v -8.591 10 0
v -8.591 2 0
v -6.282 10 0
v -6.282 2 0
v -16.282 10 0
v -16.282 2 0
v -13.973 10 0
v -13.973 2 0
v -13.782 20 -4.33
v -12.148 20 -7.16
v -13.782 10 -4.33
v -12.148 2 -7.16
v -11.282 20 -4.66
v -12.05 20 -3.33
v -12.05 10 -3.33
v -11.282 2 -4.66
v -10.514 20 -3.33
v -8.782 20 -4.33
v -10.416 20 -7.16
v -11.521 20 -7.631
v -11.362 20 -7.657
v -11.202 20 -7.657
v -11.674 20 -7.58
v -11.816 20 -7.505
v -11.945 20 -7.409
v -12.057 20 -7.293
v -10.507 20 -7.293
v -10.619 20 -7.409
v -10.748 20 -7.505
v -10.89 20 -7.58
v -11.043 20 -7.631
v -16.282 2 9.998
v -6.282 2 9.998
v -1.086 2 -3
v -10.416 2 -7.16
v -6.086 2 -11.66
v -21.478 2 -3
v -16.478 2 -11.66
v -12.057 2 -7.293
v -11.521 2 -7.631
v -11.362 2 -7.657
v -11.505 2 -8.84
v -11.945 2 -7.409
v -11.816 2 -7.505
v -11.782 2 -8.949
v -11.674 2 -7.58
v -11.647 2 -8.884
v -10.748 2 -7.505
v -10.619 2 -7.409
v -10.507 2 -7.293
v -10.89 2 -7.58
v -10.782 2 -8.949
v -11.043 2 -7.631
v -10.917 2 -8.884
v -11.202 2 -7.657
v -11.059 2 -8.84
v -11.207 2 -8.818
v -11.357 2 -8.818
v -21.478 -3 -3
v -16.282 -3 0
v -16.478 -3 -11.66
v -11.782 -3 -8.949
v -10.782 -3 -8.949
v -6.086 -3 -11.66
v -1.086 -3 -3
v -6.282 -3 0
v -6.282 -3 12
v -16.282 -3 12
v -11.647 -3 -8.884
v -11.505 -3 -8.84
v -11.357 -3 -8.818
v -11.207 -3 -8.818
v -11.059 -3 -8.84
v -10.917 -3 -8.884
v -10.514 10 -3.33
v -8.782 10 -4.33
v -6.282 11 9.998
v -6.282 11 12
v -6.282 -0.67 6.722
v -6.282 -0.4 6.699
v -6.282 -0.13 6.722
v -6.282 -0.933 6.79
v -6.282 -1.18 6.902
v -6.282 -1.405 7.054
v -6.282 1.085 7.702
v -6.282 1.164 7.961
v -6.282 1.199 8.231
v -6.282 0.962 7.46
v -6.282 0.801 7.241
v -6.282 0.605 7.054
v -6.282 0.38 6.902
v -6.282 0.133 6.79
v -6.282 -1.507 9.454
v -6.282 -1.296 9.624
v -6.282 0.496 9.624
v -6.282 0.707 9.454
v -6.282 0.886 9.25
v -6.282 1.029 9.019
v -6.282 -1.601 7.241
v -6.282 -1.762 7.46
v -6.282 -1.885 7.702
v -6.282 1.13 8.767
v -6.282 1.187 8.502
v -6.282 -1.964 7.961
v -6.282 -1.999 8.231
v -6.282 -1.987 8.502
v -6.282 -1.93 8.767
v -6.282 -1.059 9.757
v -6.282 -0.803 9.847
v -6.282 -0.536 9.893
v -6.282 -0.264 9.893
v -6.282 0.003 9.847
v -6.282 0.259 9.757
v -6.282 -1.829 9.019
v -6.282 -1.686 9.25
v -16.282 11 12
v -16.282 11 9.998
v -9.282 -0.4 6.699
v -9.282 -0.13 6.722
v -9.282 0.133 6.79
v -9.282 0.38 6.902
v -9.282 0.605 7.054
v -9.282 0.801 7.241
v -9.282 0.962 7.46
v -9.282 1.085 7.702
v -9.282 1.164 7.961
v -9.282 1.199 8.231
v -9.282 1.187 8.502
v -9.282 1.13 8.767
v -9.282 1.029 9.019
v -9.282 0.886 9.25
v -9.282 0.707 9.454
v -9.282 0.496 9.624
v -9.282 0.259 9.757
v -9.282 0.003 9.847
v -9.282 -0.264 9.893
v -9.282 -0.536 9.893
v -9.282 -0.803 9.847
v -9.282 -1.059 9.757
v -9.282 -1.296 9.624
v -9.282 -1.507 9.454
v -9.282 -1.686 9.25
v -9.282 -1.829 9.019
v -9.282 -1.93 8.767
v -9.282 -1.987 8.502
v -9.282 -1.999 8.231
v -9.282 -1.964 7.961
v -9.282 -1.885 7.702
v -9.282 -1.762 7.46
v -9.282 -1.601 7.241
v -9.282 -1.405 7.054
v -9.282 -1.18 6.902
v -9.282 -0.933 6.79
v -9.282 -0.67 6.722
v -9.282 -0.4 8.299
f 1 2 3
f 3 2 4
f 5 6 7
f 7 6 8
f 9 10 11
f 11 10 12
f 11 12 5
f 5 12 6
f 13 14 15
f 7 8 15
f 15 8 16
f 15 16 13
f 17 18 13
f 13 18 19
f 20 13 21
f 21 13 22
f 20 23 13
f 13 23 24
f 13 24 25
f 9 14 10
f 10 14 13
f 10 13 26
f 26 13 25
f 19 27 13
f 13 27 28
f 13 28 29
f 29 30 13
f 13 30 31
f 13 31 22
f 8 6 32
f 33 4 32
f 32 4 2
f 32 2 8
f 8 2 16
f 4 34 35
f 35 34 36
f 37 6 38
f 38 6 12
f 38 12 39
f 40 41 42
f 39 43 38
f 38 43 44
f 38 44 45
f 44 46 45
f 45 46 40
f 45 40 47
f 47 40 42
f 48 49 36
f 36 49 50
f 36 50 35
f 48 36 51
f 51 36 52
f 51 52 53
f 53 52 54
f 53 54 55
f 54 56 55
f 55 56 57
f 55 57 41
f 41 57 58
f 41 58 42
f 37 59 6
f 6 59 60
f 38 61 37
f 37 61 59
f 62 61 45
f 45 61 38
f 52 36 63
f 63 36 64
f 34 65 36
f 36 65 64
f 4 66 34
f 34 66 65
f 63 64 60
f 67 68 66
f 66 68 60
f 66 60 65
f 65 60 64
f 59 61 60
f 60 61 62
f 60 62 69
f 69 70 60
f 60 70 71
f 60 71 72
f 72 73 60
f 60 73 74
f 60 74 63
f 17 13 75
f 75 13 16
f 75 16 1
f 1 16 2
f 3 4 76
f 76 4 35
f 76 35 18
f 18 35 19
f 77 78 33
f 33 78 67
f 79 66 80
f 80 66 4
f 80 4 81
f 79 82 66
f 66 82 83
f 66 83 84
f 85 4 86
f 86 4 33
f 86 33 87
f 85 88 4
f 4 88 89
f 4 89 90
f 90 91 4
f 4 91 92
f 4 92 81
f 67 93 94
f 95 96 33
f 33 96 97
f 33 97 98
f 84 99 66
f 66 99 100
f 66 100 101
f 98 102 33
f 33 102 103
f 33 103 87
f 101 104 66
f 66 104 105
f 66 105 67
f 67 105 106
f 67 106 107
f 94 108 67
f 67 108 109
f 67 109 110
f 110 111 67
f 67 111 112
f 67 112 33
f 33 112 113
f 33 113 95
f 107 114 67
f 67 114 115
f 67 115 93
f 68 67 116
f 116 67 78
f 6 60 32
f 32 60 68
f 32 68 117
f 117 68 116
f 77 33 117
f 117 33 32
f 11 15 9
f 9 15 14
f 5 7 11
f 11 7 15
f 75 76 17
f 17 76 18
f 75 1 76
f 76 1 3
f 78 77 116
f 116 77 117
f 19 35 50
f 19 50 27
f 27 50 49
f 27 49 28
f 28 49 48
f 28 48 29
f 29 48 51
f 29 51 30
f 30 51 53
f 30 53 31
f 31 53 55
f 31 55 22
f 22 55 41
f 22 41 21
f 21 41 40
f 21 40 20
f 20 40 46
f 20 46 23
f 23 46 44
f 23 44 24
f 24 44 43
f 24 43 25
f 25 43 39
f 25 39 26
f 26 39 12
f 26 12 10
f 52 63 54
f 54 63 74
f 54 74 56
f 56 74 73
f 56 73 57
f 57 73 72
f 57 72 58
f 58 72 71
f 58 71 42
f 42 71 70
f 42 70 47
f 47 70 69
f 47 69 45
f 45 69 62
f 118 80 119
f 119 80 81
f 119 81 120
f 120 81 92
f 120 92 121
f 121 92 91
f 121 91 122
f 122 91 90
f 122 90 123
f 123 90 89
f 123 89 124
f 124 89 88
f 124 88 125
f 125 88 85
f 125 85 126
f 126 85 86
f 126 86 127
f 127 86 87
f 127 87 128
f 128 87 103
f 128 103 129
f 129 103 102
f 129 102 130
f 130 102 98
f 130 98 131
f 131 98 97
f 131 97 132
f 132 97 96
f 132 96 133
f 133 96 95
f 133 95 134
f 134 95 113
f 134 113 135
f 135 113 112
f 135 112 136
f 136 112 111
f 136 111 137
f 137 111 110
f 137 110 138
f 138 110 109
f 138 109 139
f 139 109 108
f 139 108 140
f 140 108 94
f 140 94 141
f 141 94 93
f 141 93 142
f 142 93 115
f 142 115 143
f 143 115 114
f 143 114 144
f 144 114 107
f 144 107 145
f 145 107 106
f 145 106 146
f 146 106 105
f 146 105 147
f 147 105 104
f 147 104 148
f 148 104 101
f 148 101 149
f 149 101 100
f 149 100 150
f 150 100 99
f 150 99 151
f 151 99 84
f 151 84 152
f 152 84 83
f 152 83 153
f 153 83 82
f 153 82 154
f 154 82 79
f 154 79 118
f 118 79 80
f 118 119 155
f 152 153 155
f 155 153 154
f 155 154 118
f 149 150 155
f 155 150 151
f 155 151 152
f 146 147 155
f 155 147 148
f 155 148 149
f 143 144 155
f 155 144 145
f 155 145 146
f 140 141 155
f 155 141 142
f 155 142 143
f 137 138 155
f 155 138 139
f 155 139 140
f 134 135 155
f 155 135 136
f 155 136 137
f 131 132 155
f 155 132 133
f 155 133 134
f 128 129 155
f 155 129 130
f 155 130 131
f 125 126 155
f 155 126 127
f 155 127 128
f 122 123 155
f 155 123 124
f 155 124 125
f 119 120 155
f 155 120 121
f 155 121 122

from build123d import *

# Parameters (mm, degrees)
BOSS_EXTRUDE1_DEPTH      = 2
BOSS_EXTRUDE1_DEPTH_BACK = 3
BOSS_EXTRUDE2_DEPTH      = 18
BOSS_EXTRUDE3_DEPTH      = 2
BOSS_EXTRUDE3_DEPTH_BACK = 3
SKETCH8_W                = 10
SKETCH8_H                = 12
SKETCH9_W                = 10
SKETCH9_H                = 2.002012711
BOSS_EXTRUDE4_DEPTH      = 18
CUT_EXTRUDE1_DEPTH       = 10
SKETCH12_W               = 10
SKETCH12_H               = 9
CUT_EXTRUDE3_DEPTH       = 3
FILLET3_R                = 1
FILLET4_R                = 1
SKETCH14_R               = 1.6
CUT_EXTRUDE4_DEPTH       = 3


with BuildPart() as part:
    # Sketch3 → Boss-Extrude1 (new, two sides: drawn at the far end of the back side and taken through both)
    with BuildSketch(Plane(origin=(0, 0, 0), x_dir=(1, 0, 0), z_dir=(0, 1, 0)).offset(-BOSS_EXTRUDE1_DEPTH_BACK)):
        Polygon((-16.281996431, 0), (-6.281996431, 0), (-1.085844009, 3), (-6.085844009, 11.660254038), (-11.281996431, 8.660254038), (-16.478148854, 11.660254038), (-21.478148854, 3), align=None)
    extrude(amount=BOSS_EXTRUDE1_DEPTH + BOSS_EXTRUDE1_DEPTH_BACK)

    # Sketch7 → Boss-Extrude2 (add)
    with BuildSketch(Plane(origin=(0, 2, 0), x_dir=(1, 0, 0), z_dir=(0, 1, 0))):
        Polygon((-6.281996431, 0), (-11.281996431, 8.660254038), (-16.281996431, 0), (-13.972595355, 0), (-12.817894816, 2), (-11.281996431, 4.660254038), (-9.746098047, 2), (-8.591397508, 0), align=None)
    extrude(amount=BOSS_EXTRUDE2_DEPTH)

    # Sketch8 → Boss-Extrude3 (add, two sides: drawn at the far end of the back side and taken through both)
    with BuildSketch(Plane(origin=(0, 0, 0), x_dir=(1, 0, 0), z_dir=(0, 1, 0)).offset(-BOSS_EXTRUDE3_DEPTH_BACK)):
        with Locations((-11.281996431, -6)):
            Rectangle(SKETCH8_W, SKETCH8_H)
    extrude(amount=BOSS_EXTRUDE3_DEPTH + BOSS_EXTRUDE3_DEPTH_BACK)

    # Sketch9 → Boss-Extrude4 (add)
    with BuildSketch(Plane(origin=(0, 2, 0), x_dir=(1, 0, 0), z_dir=(0, 1, 0))):
        with Locations((-11.281996431, -10.998993645)):
            Rectangle(SKETCH9_W, SKETCH9_H)
    extrude(amount=BOSS_EXTRUDE4_DEPTH)

    # Sketch10 → Cut-Extrude1 (cut)
    with BuildSketch(Plane(origin=(0, 20, 0), x_dir=(1, 0, 0), z_dir=(0, 1, 0))):
        Polygon((-13.781996431, 4.330127019), (-16.281996431, 0), (-13.972595355, 0), (-12.049945624, 3.330127019), align=None)
        Polygon((-6.281996431, 0), (-8.781996431, 4.330127019), (-10.514047239, 3.330127019), (-8.591397508, 0), align=None)
    extrude(amount=-CUT_EXTRUDE1_DEPTH, mode=Mode.SUBTRACT)

    # Sketch12 → Cut-Extrude3 (cut)
    with BuildSketch(Plane.XY.offset(12)):
        with Locations((-11.281996431, 15.5)):
            Rectangle(SKETCH12_W, SKETCH12_H)
    extrude(amount=-CUT_EXTRUDE3_DEPTH, mode=Mode.SUBTRACT)

    # Fillet3
    # the kernel refuses this fillet: 1 mm, written as the material it takes off along each edge
    with BuildSketch(Plane(origin=(-11.281996431, 2, -8.660254038), x_dir=(-0.5000000000000031, 0, 0.8660254037844368), z_dir=(0, 1, 0))) as fillet3_piece_1:
        with BuildLine():
            CenterArc((FILLET3_R * 1.73205080757, FILLET3_R), FILLET3_R, 150, 120)
            Line((FILLET3_R * 0.866025403784, FILLET3_R * 1.5), (0, 0))
            Line((0, 0), (FILLET3_R * 1.73205080757, 0))
        make_face()
    extrude(amount=22.330127019, mode=Mode.SUBTRACT)

    # Fillet4
    fillet4_edges = [part.edges().sort_by_distance(p)[0] for p in [
        (-11.281996431, -0.5, -8.660254038),
    ]]
    fillet(fillet4_edges, radius=FILLET4_R)

    # Sketch14 → Cut-Extrude4 (cut)
    with BuildSketch(Plane(origin=(-6.281996431, 0, 0), x_dir=(0, 0, -1), z_dir=(1, 0, 0))):
        with Locations((-8.29856454, -0.4)):
            Circle(SKETCH14_R)
    extrude(amount=-CUT_EXTRUDE4_DEPTH, mode=Mode.SUBTRACT)


solid = part.part
